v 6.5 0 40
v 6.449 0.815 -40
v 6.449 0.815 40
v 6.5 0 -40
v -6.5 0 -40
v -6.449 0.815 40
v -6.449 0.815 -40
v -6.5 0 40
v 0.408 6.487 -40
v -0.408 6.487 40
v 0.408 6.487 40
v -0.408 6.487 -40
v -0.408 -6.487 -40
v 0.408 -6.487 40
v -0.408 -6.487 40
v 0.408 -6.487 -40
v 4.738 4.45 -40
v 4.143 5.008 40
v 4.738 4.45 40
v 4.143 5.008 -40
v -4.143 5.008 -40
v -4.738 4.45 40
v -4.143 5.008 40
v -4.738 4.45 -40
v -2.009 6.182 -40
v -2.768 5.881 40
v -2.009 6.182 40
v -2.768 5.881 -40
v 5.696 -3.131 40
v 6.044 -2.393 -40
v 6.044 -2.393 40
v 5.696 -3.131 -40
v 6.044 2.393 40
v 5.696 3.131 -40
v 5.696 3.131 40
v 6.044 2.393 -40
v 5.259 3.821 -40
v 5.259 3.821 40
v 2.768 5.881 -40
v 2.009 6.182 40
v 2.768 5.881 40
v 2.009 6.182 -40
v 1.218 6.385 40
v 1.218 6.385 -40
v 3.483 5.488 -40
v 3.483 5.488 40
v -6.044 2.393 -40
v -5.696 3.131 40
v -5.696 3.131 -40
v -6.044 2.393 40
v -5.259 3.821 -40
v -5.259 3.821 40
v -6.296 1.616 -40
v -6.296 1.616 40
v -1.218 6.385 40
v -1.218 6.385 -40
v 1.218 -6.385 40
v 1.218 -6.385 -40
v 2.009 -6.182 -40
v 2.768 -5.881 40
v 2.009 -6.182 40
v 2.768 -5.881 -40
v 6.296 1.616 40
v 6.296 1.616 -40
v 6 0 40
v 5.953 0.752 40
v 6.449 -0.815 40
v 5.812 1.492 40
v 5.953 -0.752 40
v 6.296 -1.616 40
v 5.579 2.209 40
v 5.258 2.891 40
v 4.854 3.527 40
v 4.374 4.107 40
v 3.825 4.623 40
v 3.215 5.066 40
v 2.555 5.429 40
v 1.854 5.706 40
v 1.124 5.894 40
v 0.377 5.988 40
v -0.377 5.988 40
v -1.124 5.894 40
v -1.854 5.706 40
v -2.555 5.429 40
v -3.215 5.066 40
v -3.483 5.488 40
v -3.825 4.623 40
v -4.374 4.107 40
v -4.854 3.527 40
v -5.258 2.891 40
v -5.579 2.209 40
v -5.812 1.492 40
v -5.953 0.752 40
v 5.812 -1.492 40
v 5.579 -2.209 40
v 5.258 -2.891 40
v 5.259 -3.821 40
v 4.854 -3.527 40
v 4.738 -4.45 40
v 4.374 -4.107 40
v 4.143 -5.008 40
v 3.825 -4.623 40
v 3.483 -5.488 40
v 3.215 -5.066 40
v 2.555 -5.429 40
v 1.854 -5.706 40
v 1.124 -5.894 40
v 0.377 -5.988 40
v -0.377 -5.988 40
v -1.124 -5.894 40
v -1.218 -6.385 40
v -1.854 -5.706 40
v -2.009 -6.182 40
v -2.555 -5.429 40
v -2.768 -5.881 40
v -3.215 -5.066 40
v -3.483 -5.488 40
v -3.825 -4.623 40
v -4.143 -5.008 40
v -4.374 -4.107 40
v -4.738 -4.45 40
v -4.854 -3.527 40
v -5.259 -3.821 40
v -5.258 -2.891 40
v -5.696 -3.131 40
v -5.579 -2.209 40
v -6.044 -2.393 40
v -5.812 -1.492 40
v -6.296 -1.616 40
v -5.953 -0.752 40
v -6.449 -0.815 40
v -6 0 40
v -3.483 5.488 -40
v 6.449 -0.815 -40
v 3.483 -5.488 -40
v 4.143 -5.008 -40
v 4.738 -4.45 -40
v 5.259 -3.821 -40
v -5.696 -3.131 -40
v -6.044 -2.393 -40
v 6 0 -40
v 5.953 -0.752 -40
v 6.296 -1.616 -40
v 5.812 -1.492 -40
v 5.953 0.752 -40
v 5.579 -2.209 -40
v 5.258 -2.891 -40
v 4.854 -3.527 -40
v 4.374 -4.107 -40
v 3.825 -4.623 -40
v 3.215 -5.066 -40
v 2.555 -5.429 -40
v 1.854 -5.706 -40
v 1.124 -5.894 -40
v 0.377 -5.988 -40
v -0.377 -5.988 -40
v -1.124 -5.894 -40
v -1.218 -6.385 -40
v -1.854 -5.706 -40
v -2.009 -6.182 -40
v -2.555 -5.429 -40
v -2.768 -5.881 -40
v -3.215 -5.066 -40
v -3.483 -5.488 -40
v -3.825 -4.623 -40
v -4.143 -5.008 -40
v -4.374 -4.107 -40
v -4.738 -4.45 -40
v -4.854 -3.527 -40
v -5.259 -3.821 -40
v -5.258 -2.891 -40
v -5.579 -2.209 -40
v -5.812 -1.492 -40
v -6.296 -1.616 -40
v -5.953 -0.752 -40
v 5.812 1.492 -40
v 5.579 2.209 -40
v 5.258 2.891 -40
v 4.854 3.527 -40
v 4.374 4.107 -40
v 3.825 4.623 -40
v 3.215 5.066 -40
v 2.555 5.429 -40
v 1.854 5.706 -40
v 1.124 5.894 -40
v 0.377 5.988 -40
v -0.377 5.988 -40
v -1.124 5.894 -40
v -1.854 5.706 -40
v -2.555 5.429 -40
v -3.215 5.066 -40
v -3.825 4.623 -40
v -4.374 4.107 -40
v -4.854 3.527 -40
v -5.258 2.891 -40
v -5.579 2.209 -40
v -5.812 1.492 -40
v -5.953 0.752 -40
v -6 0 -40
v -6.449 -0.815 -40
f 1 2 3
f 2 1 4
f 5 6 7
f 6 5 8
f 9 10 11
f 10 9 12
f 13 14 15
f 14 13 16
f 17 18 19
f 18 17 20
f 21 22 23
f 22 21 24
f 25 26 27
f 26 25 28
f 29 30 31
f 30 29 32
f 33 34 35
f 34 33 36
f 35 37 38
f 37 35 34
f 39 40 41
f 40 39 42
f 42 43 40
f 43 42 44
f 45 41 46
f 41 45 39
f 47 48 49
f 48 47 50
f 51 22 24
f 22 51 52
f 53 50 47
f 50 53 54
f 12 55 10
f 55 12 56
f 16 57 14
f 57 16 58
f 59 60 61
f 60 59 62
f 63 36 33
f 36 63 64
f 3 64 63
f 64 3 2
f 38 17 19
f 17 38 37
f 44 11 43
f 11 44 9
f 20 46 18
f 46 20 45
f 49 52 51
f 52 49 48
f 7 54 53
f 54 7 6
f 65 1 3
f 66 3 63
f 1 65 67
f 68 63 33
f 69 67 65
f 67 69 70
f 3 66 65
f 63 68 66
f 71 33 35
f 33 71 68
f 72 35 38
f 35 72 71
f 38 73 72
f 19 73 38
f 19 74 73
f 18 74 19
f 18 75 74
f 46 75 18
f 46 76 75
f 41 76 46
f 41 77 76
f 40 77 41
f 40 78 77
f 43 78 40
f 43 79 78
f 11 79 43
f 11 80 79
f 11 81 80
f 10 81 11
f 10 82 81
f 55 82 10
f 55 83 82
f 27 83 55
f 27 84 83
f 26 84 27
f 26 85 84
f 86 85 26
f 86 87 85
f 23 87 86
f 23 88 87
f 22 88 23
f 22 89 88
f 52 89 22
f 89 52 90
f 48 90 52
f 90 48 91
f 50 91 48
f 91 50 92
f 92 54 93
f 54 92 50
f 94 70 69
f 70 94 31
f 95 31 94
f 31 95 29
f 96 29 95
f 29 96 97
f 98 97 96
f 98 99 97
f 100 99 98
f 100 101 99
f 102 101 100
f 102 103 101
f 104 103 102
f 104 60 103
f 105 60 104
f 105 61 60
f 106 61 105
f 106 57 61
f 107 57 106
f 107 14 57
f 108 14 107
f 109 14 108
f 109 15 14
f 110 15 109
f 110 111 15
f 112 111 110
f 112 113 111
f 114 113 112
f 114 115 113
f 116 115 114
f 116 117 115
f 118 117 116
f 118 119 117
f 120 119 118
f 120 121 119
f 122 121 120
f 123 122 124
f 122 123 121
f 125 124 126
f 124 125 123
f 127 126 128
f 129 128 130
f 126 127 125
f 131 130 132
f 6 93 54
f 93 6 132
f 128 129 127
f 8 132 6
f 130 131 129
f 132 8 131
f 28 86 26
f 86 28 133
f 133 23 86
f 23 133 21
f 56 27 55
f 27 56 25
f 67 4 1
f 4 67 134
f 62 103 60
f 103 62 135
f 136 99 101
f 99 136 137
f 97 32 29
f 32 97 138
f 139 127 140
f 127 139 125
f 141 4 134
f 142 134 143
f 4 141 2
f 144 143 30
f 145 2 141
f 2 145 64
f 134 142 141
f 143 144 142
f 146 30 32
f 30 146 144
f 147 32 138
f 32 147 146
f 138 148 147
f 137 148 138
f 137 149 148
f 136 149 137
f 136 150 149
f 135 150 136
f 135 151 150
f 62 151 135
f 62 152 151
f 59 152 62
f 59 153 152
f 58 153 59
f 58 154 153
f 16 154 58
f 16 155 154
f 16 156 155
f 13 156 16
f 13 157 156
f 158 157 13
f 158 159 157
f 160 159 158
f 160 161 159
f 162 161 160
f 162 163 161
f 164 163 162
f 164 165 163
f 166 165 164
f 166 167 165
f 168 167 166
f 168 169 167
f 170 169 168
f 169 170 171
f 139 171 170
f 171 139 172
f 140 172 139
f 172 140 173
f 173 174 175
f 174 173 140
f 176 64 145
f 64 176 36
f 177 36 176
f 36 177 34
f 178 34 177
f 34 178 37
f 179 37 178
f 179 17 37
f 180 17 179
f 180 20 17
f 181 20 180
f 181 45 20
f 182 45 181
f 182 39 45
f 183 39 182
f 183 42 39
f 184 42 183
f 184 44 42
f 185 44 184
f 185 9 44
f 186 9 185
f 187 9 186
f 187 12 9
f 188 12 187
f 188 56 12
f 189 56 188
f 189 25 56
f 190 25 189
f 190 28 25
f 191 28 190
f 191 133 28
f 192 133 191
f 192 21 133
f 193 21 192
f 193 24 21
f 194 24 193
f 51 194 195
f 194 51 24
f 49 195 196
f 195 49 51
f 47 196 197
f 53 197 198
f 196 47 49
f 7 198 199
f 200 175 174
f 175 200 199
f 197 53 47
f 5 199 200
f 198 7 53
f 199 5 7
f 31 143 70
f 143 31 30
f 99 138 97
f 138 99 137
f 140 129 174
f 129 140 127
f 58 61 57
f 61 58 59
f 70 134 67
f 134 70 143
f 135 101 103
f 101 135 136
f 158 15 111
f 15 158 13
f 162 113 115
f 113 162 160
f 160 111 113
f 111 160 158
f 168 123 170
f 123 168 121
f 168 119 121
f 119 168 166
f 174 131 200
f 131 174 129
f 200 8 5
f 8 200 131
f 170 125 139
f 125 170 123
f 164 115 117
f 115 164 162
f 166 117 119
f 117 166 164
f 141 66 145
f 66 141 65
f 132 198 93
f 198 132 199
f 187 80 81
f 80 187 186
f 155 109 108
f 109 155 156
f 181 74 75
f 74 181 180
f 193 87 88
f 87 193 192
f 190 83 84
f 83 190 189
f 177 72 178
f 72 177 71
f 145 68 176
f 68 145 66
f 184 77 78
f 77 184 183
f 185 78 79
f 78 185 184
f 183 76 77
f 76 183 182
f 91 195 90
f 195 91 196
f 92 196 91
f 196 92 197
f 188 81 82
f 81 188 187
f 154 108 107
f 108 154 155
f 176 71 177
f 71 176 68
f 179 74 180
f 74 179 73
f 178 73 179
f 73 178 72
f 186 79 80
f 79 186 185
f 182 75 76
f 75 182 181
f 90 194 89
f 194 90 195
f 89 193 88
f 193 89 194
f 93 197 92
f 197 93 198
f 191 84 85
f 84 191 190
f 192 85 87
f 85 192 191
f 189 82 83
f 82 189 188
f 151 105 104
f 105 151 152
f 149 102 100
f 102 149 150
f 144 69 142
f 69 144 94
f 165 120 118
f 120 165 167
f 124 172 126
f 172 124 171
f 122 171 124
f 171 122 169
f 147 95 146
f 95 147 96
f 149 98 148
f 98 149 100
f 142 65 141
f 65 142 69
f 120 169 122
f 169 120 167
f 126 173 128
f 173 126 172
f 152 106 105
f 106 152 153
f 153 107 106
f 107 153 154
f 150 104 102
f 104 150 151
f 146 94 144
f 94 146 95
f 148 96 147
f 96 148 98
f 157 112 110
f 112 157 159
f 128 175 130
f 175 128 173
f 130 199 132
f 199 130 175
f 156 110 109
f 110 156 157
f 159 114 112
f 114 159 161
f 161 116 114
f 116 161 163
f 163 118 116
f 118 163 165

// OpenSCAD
$fn = 50;


difference() {
	union() {
		translate(v = [0, 0, -40.0000000000]) {
			cylinder(h = 80, r = 6.5000000000);
		}
	}
	union() {
		translate(v = [0, 0, -100.0000000000]) {
			cylinder(h = 200, r = 6);
		}
	}
}
